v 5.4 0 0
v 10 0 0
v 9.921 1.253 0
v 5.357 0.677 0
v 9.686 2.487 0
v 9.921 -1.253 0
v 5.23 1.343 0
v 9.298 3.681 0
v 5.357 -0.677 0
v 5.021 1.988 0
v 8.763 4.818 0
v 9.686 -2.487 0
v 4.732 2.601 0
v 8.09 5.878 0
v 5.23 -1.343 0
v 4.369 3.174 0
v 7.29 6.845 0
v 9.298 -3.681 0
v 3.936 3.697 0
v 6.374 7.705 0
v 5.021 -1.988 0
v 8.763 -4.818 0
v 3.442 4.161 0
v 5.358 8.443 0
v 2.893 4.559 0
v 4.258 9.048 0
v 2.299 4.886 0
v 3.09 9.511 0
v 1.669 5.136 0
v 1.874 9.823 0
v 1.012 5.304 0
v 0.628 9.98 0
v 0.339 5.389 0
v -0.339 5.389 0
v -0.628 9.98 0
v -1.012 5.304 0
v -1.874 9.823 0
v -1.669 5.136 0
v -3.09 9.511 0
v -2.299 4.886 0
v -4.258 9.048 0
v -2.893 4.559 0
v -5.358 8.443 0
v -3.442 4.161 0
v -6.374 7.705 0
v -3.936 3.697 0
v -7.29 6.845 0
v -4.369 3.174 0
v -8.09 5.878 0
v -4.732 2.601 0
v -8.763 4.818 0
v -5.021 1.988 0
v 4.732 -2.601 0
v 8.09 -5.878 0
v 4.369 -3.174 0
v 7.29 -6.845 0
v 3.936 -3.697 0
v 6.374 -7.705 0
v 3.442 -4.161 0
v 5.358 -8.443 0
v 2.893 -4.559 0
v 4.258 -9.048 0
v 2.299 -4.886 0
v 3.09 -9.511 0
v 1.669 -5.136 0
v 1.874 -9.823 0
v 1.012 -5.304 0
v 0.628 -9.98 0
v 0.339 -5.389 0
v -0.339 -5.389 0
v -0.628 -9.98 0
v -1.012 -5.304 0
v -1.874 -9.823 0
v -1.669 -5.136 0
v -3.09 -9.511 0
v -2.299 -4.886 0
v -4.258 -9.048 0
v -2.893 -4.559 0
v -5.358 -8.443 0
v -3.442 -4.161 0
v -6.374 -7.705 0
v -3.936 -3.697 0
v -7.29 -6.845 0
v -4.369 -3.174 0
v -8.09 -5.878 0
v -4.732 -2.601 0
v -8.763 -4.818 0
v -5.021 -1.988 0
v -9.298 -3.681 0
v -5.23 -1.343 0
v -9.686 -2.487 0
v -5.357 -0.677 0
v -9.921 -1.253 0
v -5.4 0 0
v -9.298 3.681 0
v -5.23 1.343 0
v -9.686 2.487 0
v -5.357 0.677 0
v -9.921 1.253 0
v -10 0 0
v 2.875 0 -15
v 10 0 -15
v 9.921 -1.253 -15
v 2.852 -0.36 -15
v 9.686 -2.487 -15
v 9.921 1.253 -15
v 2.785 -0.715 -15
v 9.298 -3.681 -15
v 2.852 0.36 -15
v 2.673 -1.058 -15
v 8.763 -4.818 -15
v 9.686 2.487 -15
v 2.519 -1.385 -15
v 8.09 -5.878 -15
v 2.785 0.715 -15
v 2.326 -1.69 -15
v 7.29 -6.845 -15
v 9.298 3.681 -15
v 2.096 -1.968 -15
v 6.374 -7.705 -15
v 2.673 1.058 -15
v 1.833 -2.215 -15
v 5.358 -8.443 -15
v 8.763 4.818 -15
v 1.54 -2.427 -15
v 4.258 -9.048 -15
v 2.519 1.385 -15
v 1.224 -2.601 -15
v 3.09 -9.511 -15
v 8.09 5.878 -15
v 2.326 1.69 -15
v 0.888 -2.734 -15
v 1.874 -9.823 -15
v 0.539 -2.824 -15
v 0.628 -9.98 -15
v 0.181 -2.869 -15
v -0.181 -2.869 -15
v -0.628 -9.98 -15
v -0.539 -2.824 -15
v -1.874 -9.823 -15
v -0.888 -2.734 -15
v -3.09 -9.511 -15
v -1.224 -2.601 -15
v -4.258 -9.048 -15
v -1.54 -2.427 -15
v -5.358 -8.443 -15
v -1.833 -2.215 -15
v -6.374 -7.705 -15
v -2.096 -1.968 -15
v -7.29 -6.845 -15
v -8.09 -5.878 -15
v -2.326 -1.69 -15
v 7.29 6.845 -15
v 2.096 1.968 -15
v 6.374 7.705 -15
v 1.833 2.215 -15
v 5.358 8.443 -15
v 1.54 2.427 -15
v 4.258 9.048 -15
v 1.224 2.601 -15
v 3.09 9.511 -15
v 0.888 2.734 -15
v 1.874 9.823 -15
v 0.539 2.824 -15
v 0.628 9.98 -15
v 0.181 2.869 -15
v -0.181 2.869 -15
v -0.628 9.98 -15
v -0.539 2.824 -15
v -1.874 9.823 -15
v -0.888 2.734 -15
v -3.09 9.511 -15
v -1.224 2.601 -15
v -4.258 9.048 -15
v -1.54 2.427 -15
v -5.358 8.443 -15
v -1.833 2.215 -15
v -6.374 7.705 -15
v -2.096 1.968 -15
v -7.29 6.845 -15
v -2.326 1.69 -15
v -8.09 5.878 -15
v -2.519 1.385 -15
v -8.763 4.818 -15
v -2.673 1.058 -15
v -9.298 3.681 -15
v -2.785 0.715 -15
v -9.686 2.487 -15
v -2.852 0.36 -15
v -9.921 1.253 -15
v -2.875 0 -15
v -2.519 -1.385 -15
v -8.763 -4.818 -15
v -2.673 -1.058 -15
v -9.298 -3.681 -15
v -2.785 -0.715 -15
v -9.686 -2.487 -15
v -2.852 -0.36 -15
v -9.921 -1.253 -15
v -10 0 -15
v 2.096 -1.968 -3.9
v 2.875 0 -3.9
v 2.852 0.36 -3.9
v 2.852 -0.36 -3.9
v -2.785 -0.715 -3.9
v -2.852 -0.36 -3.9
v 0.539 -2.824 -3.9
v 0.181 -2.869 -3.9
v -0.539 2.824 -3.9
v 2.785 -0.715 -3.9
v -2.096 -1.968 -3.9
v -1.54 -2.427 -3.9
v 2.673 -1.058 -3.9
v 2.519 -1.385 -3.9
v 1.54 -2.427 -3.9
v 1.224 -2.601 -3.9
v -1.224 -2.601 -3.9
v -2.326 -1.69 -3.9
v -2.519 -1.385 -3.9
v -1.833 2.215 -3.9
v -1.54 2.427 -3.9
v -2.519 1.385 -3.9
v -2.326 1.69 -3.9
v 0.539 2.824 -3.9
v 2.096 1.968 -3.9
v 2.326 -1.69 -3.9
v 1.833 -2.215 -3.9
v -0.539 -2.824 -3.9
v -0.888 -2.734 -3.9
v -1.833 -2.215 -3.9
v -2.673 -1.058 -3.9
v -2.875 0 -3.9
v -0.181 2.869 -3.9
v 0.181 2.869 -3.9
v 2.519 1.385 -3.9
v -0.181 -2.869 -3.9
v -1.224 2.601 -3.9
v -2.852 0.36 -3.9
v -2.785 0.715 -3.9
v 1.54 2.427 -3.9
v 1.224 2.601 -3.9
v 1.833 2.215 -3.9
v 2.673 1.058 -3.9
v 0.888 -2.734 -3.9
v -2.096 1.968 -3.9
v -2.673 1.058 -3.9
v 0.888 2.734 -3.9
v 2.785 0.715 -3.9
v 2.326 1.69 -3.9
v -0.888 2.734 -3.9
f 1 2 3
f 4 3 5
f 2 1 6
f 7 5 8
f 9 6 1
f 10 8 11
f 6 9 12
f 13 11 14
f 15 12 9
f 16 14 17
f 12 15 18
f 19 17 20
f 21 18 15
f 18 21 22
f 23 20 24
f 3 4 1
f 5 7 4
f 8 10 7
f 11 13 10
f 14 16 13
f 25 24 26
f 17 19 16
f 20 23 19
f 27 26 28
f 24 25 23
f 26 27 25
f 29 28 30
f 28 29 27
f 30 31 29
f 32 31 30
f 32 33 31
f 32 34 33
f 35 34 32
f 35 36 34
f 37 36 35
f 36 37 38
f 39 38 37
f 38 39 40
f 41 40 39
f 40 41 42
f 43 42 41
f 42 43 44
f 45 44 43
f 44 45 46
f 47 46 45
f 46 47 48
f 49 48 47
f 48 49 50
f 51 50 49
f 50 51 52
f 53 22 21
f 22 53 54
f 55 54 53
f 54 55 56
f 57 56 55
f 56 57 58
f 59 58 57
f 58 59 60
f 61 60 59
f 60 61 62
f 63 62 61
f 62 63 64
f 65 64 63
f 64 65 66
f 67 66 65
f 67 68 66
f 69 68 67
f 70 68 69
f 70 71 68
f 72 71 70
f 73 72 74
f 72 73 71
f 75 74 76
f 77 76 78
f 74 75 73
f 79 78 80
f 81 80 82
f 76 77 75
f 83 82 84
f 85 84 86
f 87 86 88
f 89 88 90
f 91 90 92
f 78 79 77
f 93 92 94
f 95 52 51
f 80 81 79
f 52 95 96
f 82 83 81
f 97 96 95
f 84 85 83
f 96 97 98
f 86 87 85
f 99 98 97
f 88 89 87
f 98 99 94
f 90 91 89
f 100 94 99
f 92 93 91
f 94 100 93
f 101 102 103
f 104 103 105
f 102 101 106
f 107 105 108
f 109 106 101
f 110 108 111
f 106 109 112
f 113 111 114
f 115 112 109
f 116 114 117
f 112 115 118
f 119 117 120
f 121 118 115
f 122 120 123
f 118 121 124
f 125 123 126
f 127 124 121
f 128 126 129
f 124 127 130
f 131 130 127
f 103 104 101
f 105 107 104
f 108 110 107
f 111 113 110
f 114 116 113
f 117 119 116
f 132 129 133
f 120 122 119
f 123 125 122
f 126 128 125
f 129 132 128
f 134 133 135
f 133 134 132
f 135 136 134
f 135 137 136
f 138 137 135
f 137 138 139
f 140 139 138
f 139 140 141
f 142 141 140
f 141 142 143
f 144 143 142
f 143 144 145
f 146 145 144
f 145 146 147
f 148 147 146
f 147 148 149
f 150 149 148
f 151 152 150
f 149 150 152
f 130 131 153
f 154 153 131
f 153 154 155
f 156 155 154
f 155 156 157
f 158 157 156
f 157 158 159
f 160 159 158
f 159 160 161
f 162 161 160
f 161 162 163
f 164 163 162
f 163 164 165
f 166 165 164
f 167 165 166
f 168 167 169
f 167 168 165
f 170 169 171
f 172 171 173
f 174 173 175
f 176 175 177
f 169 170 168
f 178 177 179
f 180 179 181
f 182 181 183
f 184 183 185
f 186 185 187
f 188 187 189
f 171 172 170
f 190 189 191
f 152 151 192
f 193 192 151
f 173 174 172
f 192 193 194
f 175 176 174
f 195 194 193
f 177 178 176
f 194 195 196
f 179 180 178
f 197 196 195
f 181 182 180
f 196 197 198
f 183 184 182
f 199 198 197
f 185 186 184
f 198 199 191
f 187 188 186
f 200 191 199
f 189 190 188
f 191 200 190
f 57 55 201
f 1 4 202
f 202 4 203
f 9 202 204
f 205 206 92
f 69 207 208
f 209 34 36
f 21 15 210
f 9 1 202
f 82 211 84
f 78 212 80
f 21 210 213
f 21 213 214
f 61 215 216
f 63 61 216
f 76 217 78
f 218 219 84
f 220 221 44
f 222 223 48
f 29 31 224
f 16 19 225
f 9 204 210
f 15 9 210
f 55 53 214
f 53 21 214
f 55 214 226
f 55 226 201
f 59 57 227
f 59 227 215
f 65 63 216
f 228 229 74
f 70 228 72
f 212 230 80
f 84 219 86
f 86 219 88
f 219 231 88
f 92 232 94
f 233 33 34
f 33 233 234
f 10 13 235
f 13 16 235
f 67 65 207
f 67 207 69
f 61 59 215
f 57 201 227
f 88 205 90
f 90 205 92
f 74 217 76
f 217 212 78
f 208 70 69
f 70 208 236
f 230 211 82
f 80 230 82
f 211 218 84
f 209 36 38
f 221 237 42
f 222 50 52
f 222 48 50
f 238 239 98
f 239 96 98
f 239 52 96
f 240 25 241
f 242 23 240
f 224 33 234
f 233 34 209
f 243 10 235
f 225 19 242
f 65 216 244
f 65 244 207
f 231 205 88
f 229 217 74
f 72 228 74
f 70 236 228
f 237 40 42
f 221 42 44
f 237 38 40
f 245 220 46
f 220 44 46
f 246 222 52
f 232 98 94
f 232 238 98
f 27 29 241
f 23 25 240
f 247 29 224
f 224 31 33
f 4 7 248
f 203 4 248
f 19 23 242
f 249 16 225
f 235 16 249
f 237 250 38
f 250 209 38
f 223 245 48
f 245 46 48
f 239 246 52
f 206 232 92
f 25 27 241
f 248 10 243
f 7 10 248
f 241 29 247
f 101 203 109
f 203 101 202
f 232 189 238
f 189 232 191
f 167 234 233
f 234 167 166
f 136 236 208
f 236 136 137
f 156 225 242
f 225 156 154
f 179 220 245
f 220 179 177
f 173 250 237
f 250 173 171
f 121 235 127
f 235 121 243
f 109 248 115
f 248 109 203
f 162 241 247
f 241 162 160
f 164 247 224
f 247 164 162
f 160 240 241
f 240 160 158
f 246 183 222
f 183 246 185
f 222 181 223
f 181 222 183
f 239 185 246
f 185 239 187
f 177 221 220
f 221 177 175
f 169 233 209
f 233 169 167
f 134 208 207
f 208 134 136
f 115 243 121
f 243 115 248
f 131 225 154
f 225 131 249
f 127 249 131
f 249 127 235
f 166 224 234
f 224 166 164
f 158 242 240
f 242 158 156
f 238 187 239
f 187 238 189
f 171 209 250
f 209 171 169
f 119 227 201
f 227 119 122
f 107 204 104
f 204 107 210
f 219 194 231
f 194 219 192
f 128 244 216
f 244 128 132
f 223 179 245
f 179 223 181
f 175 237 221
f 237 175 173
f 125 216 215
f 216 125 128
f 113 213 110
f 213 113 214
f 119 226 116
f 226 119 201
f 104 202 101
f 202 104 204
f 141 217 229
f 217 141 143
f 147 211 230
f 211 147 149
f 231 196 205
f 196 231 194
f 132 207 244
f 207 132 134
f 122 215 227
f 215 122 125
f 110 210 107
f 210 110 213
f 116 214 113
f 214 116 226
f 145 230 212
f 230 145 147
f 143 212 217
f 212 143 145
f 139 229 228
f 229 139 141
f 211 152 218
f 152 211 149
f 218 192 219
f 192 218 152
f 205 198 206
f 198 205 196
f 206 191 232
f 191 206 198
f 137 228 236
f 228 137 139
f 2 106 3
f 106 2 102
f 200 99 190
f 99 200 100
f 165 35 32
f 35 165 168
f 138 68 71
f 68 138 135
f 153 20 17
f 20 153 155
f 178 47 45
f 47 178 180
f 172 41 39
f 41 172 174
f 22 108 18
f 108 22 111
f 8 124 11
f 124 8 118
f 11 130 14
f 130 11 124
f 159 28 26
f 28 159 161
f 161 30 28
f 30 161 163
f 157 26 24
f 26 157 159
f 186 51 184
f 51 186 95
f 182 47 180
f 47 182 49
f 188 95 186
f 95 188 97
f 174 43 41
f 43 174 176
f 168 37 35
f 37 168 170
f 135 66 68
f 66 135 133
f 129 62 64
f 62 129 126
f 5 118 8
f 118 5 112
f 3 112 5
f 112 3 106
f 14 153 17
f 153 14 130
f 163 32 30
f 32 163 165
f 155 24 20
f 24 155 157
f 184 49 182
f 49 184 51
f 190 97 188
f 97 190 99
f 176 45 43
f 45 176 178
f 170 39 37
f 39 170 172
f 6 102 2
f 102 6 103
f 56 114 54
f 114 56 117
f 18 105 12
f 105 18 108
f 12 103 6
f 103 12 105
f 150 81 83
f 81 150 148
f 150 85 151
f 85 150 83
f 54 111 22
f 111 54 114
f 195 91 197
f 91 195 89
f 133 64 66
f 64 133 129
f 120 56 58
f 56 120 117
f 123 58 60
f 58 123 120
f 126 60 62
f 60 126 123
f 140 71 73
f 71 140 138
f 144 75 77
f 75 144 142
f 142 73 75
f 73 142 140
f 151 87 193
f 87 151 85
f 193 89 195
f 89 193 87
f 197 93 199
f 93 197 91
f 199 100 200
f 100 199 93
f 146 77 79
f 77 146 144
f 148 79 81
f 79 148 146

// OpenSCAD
$fn = 50;


difference() {
	union() {
		translate(v = [0, 0, -15.0000000000]) {
			cylinder(h = 15, r = 10.0000000000);
		}
		cylinder(h = 0, r = 20.0000000000);
	}
	union() {
		translate(v = [0, 0, 0]) {
			rotate(a = [0, 0, 0]) {
				difference() {
					union() {
						#translate(v = [0, 0, -15.0000000000]) {
							cylinder(h = 15, r = 2.6000000000);
						}
						#translate(v = [0, 0, -3.9000000000]) {
							cylinder(h = 3.9000000000, r = 10.0000000000, r1 = 2.8750000000, r2 = 5.4000000000);
						}
						#translate(v = [0, 0, -15.0000000000]) {
							cylinder(h = 15, r = 2.8750000000);
						}
						#translate(v = [0, 0, -15.0000000000]) {
							cylinder(h = 15, r = 2.6000000000);
						}
					}
					union();
				}
			}
		}
	}
}
